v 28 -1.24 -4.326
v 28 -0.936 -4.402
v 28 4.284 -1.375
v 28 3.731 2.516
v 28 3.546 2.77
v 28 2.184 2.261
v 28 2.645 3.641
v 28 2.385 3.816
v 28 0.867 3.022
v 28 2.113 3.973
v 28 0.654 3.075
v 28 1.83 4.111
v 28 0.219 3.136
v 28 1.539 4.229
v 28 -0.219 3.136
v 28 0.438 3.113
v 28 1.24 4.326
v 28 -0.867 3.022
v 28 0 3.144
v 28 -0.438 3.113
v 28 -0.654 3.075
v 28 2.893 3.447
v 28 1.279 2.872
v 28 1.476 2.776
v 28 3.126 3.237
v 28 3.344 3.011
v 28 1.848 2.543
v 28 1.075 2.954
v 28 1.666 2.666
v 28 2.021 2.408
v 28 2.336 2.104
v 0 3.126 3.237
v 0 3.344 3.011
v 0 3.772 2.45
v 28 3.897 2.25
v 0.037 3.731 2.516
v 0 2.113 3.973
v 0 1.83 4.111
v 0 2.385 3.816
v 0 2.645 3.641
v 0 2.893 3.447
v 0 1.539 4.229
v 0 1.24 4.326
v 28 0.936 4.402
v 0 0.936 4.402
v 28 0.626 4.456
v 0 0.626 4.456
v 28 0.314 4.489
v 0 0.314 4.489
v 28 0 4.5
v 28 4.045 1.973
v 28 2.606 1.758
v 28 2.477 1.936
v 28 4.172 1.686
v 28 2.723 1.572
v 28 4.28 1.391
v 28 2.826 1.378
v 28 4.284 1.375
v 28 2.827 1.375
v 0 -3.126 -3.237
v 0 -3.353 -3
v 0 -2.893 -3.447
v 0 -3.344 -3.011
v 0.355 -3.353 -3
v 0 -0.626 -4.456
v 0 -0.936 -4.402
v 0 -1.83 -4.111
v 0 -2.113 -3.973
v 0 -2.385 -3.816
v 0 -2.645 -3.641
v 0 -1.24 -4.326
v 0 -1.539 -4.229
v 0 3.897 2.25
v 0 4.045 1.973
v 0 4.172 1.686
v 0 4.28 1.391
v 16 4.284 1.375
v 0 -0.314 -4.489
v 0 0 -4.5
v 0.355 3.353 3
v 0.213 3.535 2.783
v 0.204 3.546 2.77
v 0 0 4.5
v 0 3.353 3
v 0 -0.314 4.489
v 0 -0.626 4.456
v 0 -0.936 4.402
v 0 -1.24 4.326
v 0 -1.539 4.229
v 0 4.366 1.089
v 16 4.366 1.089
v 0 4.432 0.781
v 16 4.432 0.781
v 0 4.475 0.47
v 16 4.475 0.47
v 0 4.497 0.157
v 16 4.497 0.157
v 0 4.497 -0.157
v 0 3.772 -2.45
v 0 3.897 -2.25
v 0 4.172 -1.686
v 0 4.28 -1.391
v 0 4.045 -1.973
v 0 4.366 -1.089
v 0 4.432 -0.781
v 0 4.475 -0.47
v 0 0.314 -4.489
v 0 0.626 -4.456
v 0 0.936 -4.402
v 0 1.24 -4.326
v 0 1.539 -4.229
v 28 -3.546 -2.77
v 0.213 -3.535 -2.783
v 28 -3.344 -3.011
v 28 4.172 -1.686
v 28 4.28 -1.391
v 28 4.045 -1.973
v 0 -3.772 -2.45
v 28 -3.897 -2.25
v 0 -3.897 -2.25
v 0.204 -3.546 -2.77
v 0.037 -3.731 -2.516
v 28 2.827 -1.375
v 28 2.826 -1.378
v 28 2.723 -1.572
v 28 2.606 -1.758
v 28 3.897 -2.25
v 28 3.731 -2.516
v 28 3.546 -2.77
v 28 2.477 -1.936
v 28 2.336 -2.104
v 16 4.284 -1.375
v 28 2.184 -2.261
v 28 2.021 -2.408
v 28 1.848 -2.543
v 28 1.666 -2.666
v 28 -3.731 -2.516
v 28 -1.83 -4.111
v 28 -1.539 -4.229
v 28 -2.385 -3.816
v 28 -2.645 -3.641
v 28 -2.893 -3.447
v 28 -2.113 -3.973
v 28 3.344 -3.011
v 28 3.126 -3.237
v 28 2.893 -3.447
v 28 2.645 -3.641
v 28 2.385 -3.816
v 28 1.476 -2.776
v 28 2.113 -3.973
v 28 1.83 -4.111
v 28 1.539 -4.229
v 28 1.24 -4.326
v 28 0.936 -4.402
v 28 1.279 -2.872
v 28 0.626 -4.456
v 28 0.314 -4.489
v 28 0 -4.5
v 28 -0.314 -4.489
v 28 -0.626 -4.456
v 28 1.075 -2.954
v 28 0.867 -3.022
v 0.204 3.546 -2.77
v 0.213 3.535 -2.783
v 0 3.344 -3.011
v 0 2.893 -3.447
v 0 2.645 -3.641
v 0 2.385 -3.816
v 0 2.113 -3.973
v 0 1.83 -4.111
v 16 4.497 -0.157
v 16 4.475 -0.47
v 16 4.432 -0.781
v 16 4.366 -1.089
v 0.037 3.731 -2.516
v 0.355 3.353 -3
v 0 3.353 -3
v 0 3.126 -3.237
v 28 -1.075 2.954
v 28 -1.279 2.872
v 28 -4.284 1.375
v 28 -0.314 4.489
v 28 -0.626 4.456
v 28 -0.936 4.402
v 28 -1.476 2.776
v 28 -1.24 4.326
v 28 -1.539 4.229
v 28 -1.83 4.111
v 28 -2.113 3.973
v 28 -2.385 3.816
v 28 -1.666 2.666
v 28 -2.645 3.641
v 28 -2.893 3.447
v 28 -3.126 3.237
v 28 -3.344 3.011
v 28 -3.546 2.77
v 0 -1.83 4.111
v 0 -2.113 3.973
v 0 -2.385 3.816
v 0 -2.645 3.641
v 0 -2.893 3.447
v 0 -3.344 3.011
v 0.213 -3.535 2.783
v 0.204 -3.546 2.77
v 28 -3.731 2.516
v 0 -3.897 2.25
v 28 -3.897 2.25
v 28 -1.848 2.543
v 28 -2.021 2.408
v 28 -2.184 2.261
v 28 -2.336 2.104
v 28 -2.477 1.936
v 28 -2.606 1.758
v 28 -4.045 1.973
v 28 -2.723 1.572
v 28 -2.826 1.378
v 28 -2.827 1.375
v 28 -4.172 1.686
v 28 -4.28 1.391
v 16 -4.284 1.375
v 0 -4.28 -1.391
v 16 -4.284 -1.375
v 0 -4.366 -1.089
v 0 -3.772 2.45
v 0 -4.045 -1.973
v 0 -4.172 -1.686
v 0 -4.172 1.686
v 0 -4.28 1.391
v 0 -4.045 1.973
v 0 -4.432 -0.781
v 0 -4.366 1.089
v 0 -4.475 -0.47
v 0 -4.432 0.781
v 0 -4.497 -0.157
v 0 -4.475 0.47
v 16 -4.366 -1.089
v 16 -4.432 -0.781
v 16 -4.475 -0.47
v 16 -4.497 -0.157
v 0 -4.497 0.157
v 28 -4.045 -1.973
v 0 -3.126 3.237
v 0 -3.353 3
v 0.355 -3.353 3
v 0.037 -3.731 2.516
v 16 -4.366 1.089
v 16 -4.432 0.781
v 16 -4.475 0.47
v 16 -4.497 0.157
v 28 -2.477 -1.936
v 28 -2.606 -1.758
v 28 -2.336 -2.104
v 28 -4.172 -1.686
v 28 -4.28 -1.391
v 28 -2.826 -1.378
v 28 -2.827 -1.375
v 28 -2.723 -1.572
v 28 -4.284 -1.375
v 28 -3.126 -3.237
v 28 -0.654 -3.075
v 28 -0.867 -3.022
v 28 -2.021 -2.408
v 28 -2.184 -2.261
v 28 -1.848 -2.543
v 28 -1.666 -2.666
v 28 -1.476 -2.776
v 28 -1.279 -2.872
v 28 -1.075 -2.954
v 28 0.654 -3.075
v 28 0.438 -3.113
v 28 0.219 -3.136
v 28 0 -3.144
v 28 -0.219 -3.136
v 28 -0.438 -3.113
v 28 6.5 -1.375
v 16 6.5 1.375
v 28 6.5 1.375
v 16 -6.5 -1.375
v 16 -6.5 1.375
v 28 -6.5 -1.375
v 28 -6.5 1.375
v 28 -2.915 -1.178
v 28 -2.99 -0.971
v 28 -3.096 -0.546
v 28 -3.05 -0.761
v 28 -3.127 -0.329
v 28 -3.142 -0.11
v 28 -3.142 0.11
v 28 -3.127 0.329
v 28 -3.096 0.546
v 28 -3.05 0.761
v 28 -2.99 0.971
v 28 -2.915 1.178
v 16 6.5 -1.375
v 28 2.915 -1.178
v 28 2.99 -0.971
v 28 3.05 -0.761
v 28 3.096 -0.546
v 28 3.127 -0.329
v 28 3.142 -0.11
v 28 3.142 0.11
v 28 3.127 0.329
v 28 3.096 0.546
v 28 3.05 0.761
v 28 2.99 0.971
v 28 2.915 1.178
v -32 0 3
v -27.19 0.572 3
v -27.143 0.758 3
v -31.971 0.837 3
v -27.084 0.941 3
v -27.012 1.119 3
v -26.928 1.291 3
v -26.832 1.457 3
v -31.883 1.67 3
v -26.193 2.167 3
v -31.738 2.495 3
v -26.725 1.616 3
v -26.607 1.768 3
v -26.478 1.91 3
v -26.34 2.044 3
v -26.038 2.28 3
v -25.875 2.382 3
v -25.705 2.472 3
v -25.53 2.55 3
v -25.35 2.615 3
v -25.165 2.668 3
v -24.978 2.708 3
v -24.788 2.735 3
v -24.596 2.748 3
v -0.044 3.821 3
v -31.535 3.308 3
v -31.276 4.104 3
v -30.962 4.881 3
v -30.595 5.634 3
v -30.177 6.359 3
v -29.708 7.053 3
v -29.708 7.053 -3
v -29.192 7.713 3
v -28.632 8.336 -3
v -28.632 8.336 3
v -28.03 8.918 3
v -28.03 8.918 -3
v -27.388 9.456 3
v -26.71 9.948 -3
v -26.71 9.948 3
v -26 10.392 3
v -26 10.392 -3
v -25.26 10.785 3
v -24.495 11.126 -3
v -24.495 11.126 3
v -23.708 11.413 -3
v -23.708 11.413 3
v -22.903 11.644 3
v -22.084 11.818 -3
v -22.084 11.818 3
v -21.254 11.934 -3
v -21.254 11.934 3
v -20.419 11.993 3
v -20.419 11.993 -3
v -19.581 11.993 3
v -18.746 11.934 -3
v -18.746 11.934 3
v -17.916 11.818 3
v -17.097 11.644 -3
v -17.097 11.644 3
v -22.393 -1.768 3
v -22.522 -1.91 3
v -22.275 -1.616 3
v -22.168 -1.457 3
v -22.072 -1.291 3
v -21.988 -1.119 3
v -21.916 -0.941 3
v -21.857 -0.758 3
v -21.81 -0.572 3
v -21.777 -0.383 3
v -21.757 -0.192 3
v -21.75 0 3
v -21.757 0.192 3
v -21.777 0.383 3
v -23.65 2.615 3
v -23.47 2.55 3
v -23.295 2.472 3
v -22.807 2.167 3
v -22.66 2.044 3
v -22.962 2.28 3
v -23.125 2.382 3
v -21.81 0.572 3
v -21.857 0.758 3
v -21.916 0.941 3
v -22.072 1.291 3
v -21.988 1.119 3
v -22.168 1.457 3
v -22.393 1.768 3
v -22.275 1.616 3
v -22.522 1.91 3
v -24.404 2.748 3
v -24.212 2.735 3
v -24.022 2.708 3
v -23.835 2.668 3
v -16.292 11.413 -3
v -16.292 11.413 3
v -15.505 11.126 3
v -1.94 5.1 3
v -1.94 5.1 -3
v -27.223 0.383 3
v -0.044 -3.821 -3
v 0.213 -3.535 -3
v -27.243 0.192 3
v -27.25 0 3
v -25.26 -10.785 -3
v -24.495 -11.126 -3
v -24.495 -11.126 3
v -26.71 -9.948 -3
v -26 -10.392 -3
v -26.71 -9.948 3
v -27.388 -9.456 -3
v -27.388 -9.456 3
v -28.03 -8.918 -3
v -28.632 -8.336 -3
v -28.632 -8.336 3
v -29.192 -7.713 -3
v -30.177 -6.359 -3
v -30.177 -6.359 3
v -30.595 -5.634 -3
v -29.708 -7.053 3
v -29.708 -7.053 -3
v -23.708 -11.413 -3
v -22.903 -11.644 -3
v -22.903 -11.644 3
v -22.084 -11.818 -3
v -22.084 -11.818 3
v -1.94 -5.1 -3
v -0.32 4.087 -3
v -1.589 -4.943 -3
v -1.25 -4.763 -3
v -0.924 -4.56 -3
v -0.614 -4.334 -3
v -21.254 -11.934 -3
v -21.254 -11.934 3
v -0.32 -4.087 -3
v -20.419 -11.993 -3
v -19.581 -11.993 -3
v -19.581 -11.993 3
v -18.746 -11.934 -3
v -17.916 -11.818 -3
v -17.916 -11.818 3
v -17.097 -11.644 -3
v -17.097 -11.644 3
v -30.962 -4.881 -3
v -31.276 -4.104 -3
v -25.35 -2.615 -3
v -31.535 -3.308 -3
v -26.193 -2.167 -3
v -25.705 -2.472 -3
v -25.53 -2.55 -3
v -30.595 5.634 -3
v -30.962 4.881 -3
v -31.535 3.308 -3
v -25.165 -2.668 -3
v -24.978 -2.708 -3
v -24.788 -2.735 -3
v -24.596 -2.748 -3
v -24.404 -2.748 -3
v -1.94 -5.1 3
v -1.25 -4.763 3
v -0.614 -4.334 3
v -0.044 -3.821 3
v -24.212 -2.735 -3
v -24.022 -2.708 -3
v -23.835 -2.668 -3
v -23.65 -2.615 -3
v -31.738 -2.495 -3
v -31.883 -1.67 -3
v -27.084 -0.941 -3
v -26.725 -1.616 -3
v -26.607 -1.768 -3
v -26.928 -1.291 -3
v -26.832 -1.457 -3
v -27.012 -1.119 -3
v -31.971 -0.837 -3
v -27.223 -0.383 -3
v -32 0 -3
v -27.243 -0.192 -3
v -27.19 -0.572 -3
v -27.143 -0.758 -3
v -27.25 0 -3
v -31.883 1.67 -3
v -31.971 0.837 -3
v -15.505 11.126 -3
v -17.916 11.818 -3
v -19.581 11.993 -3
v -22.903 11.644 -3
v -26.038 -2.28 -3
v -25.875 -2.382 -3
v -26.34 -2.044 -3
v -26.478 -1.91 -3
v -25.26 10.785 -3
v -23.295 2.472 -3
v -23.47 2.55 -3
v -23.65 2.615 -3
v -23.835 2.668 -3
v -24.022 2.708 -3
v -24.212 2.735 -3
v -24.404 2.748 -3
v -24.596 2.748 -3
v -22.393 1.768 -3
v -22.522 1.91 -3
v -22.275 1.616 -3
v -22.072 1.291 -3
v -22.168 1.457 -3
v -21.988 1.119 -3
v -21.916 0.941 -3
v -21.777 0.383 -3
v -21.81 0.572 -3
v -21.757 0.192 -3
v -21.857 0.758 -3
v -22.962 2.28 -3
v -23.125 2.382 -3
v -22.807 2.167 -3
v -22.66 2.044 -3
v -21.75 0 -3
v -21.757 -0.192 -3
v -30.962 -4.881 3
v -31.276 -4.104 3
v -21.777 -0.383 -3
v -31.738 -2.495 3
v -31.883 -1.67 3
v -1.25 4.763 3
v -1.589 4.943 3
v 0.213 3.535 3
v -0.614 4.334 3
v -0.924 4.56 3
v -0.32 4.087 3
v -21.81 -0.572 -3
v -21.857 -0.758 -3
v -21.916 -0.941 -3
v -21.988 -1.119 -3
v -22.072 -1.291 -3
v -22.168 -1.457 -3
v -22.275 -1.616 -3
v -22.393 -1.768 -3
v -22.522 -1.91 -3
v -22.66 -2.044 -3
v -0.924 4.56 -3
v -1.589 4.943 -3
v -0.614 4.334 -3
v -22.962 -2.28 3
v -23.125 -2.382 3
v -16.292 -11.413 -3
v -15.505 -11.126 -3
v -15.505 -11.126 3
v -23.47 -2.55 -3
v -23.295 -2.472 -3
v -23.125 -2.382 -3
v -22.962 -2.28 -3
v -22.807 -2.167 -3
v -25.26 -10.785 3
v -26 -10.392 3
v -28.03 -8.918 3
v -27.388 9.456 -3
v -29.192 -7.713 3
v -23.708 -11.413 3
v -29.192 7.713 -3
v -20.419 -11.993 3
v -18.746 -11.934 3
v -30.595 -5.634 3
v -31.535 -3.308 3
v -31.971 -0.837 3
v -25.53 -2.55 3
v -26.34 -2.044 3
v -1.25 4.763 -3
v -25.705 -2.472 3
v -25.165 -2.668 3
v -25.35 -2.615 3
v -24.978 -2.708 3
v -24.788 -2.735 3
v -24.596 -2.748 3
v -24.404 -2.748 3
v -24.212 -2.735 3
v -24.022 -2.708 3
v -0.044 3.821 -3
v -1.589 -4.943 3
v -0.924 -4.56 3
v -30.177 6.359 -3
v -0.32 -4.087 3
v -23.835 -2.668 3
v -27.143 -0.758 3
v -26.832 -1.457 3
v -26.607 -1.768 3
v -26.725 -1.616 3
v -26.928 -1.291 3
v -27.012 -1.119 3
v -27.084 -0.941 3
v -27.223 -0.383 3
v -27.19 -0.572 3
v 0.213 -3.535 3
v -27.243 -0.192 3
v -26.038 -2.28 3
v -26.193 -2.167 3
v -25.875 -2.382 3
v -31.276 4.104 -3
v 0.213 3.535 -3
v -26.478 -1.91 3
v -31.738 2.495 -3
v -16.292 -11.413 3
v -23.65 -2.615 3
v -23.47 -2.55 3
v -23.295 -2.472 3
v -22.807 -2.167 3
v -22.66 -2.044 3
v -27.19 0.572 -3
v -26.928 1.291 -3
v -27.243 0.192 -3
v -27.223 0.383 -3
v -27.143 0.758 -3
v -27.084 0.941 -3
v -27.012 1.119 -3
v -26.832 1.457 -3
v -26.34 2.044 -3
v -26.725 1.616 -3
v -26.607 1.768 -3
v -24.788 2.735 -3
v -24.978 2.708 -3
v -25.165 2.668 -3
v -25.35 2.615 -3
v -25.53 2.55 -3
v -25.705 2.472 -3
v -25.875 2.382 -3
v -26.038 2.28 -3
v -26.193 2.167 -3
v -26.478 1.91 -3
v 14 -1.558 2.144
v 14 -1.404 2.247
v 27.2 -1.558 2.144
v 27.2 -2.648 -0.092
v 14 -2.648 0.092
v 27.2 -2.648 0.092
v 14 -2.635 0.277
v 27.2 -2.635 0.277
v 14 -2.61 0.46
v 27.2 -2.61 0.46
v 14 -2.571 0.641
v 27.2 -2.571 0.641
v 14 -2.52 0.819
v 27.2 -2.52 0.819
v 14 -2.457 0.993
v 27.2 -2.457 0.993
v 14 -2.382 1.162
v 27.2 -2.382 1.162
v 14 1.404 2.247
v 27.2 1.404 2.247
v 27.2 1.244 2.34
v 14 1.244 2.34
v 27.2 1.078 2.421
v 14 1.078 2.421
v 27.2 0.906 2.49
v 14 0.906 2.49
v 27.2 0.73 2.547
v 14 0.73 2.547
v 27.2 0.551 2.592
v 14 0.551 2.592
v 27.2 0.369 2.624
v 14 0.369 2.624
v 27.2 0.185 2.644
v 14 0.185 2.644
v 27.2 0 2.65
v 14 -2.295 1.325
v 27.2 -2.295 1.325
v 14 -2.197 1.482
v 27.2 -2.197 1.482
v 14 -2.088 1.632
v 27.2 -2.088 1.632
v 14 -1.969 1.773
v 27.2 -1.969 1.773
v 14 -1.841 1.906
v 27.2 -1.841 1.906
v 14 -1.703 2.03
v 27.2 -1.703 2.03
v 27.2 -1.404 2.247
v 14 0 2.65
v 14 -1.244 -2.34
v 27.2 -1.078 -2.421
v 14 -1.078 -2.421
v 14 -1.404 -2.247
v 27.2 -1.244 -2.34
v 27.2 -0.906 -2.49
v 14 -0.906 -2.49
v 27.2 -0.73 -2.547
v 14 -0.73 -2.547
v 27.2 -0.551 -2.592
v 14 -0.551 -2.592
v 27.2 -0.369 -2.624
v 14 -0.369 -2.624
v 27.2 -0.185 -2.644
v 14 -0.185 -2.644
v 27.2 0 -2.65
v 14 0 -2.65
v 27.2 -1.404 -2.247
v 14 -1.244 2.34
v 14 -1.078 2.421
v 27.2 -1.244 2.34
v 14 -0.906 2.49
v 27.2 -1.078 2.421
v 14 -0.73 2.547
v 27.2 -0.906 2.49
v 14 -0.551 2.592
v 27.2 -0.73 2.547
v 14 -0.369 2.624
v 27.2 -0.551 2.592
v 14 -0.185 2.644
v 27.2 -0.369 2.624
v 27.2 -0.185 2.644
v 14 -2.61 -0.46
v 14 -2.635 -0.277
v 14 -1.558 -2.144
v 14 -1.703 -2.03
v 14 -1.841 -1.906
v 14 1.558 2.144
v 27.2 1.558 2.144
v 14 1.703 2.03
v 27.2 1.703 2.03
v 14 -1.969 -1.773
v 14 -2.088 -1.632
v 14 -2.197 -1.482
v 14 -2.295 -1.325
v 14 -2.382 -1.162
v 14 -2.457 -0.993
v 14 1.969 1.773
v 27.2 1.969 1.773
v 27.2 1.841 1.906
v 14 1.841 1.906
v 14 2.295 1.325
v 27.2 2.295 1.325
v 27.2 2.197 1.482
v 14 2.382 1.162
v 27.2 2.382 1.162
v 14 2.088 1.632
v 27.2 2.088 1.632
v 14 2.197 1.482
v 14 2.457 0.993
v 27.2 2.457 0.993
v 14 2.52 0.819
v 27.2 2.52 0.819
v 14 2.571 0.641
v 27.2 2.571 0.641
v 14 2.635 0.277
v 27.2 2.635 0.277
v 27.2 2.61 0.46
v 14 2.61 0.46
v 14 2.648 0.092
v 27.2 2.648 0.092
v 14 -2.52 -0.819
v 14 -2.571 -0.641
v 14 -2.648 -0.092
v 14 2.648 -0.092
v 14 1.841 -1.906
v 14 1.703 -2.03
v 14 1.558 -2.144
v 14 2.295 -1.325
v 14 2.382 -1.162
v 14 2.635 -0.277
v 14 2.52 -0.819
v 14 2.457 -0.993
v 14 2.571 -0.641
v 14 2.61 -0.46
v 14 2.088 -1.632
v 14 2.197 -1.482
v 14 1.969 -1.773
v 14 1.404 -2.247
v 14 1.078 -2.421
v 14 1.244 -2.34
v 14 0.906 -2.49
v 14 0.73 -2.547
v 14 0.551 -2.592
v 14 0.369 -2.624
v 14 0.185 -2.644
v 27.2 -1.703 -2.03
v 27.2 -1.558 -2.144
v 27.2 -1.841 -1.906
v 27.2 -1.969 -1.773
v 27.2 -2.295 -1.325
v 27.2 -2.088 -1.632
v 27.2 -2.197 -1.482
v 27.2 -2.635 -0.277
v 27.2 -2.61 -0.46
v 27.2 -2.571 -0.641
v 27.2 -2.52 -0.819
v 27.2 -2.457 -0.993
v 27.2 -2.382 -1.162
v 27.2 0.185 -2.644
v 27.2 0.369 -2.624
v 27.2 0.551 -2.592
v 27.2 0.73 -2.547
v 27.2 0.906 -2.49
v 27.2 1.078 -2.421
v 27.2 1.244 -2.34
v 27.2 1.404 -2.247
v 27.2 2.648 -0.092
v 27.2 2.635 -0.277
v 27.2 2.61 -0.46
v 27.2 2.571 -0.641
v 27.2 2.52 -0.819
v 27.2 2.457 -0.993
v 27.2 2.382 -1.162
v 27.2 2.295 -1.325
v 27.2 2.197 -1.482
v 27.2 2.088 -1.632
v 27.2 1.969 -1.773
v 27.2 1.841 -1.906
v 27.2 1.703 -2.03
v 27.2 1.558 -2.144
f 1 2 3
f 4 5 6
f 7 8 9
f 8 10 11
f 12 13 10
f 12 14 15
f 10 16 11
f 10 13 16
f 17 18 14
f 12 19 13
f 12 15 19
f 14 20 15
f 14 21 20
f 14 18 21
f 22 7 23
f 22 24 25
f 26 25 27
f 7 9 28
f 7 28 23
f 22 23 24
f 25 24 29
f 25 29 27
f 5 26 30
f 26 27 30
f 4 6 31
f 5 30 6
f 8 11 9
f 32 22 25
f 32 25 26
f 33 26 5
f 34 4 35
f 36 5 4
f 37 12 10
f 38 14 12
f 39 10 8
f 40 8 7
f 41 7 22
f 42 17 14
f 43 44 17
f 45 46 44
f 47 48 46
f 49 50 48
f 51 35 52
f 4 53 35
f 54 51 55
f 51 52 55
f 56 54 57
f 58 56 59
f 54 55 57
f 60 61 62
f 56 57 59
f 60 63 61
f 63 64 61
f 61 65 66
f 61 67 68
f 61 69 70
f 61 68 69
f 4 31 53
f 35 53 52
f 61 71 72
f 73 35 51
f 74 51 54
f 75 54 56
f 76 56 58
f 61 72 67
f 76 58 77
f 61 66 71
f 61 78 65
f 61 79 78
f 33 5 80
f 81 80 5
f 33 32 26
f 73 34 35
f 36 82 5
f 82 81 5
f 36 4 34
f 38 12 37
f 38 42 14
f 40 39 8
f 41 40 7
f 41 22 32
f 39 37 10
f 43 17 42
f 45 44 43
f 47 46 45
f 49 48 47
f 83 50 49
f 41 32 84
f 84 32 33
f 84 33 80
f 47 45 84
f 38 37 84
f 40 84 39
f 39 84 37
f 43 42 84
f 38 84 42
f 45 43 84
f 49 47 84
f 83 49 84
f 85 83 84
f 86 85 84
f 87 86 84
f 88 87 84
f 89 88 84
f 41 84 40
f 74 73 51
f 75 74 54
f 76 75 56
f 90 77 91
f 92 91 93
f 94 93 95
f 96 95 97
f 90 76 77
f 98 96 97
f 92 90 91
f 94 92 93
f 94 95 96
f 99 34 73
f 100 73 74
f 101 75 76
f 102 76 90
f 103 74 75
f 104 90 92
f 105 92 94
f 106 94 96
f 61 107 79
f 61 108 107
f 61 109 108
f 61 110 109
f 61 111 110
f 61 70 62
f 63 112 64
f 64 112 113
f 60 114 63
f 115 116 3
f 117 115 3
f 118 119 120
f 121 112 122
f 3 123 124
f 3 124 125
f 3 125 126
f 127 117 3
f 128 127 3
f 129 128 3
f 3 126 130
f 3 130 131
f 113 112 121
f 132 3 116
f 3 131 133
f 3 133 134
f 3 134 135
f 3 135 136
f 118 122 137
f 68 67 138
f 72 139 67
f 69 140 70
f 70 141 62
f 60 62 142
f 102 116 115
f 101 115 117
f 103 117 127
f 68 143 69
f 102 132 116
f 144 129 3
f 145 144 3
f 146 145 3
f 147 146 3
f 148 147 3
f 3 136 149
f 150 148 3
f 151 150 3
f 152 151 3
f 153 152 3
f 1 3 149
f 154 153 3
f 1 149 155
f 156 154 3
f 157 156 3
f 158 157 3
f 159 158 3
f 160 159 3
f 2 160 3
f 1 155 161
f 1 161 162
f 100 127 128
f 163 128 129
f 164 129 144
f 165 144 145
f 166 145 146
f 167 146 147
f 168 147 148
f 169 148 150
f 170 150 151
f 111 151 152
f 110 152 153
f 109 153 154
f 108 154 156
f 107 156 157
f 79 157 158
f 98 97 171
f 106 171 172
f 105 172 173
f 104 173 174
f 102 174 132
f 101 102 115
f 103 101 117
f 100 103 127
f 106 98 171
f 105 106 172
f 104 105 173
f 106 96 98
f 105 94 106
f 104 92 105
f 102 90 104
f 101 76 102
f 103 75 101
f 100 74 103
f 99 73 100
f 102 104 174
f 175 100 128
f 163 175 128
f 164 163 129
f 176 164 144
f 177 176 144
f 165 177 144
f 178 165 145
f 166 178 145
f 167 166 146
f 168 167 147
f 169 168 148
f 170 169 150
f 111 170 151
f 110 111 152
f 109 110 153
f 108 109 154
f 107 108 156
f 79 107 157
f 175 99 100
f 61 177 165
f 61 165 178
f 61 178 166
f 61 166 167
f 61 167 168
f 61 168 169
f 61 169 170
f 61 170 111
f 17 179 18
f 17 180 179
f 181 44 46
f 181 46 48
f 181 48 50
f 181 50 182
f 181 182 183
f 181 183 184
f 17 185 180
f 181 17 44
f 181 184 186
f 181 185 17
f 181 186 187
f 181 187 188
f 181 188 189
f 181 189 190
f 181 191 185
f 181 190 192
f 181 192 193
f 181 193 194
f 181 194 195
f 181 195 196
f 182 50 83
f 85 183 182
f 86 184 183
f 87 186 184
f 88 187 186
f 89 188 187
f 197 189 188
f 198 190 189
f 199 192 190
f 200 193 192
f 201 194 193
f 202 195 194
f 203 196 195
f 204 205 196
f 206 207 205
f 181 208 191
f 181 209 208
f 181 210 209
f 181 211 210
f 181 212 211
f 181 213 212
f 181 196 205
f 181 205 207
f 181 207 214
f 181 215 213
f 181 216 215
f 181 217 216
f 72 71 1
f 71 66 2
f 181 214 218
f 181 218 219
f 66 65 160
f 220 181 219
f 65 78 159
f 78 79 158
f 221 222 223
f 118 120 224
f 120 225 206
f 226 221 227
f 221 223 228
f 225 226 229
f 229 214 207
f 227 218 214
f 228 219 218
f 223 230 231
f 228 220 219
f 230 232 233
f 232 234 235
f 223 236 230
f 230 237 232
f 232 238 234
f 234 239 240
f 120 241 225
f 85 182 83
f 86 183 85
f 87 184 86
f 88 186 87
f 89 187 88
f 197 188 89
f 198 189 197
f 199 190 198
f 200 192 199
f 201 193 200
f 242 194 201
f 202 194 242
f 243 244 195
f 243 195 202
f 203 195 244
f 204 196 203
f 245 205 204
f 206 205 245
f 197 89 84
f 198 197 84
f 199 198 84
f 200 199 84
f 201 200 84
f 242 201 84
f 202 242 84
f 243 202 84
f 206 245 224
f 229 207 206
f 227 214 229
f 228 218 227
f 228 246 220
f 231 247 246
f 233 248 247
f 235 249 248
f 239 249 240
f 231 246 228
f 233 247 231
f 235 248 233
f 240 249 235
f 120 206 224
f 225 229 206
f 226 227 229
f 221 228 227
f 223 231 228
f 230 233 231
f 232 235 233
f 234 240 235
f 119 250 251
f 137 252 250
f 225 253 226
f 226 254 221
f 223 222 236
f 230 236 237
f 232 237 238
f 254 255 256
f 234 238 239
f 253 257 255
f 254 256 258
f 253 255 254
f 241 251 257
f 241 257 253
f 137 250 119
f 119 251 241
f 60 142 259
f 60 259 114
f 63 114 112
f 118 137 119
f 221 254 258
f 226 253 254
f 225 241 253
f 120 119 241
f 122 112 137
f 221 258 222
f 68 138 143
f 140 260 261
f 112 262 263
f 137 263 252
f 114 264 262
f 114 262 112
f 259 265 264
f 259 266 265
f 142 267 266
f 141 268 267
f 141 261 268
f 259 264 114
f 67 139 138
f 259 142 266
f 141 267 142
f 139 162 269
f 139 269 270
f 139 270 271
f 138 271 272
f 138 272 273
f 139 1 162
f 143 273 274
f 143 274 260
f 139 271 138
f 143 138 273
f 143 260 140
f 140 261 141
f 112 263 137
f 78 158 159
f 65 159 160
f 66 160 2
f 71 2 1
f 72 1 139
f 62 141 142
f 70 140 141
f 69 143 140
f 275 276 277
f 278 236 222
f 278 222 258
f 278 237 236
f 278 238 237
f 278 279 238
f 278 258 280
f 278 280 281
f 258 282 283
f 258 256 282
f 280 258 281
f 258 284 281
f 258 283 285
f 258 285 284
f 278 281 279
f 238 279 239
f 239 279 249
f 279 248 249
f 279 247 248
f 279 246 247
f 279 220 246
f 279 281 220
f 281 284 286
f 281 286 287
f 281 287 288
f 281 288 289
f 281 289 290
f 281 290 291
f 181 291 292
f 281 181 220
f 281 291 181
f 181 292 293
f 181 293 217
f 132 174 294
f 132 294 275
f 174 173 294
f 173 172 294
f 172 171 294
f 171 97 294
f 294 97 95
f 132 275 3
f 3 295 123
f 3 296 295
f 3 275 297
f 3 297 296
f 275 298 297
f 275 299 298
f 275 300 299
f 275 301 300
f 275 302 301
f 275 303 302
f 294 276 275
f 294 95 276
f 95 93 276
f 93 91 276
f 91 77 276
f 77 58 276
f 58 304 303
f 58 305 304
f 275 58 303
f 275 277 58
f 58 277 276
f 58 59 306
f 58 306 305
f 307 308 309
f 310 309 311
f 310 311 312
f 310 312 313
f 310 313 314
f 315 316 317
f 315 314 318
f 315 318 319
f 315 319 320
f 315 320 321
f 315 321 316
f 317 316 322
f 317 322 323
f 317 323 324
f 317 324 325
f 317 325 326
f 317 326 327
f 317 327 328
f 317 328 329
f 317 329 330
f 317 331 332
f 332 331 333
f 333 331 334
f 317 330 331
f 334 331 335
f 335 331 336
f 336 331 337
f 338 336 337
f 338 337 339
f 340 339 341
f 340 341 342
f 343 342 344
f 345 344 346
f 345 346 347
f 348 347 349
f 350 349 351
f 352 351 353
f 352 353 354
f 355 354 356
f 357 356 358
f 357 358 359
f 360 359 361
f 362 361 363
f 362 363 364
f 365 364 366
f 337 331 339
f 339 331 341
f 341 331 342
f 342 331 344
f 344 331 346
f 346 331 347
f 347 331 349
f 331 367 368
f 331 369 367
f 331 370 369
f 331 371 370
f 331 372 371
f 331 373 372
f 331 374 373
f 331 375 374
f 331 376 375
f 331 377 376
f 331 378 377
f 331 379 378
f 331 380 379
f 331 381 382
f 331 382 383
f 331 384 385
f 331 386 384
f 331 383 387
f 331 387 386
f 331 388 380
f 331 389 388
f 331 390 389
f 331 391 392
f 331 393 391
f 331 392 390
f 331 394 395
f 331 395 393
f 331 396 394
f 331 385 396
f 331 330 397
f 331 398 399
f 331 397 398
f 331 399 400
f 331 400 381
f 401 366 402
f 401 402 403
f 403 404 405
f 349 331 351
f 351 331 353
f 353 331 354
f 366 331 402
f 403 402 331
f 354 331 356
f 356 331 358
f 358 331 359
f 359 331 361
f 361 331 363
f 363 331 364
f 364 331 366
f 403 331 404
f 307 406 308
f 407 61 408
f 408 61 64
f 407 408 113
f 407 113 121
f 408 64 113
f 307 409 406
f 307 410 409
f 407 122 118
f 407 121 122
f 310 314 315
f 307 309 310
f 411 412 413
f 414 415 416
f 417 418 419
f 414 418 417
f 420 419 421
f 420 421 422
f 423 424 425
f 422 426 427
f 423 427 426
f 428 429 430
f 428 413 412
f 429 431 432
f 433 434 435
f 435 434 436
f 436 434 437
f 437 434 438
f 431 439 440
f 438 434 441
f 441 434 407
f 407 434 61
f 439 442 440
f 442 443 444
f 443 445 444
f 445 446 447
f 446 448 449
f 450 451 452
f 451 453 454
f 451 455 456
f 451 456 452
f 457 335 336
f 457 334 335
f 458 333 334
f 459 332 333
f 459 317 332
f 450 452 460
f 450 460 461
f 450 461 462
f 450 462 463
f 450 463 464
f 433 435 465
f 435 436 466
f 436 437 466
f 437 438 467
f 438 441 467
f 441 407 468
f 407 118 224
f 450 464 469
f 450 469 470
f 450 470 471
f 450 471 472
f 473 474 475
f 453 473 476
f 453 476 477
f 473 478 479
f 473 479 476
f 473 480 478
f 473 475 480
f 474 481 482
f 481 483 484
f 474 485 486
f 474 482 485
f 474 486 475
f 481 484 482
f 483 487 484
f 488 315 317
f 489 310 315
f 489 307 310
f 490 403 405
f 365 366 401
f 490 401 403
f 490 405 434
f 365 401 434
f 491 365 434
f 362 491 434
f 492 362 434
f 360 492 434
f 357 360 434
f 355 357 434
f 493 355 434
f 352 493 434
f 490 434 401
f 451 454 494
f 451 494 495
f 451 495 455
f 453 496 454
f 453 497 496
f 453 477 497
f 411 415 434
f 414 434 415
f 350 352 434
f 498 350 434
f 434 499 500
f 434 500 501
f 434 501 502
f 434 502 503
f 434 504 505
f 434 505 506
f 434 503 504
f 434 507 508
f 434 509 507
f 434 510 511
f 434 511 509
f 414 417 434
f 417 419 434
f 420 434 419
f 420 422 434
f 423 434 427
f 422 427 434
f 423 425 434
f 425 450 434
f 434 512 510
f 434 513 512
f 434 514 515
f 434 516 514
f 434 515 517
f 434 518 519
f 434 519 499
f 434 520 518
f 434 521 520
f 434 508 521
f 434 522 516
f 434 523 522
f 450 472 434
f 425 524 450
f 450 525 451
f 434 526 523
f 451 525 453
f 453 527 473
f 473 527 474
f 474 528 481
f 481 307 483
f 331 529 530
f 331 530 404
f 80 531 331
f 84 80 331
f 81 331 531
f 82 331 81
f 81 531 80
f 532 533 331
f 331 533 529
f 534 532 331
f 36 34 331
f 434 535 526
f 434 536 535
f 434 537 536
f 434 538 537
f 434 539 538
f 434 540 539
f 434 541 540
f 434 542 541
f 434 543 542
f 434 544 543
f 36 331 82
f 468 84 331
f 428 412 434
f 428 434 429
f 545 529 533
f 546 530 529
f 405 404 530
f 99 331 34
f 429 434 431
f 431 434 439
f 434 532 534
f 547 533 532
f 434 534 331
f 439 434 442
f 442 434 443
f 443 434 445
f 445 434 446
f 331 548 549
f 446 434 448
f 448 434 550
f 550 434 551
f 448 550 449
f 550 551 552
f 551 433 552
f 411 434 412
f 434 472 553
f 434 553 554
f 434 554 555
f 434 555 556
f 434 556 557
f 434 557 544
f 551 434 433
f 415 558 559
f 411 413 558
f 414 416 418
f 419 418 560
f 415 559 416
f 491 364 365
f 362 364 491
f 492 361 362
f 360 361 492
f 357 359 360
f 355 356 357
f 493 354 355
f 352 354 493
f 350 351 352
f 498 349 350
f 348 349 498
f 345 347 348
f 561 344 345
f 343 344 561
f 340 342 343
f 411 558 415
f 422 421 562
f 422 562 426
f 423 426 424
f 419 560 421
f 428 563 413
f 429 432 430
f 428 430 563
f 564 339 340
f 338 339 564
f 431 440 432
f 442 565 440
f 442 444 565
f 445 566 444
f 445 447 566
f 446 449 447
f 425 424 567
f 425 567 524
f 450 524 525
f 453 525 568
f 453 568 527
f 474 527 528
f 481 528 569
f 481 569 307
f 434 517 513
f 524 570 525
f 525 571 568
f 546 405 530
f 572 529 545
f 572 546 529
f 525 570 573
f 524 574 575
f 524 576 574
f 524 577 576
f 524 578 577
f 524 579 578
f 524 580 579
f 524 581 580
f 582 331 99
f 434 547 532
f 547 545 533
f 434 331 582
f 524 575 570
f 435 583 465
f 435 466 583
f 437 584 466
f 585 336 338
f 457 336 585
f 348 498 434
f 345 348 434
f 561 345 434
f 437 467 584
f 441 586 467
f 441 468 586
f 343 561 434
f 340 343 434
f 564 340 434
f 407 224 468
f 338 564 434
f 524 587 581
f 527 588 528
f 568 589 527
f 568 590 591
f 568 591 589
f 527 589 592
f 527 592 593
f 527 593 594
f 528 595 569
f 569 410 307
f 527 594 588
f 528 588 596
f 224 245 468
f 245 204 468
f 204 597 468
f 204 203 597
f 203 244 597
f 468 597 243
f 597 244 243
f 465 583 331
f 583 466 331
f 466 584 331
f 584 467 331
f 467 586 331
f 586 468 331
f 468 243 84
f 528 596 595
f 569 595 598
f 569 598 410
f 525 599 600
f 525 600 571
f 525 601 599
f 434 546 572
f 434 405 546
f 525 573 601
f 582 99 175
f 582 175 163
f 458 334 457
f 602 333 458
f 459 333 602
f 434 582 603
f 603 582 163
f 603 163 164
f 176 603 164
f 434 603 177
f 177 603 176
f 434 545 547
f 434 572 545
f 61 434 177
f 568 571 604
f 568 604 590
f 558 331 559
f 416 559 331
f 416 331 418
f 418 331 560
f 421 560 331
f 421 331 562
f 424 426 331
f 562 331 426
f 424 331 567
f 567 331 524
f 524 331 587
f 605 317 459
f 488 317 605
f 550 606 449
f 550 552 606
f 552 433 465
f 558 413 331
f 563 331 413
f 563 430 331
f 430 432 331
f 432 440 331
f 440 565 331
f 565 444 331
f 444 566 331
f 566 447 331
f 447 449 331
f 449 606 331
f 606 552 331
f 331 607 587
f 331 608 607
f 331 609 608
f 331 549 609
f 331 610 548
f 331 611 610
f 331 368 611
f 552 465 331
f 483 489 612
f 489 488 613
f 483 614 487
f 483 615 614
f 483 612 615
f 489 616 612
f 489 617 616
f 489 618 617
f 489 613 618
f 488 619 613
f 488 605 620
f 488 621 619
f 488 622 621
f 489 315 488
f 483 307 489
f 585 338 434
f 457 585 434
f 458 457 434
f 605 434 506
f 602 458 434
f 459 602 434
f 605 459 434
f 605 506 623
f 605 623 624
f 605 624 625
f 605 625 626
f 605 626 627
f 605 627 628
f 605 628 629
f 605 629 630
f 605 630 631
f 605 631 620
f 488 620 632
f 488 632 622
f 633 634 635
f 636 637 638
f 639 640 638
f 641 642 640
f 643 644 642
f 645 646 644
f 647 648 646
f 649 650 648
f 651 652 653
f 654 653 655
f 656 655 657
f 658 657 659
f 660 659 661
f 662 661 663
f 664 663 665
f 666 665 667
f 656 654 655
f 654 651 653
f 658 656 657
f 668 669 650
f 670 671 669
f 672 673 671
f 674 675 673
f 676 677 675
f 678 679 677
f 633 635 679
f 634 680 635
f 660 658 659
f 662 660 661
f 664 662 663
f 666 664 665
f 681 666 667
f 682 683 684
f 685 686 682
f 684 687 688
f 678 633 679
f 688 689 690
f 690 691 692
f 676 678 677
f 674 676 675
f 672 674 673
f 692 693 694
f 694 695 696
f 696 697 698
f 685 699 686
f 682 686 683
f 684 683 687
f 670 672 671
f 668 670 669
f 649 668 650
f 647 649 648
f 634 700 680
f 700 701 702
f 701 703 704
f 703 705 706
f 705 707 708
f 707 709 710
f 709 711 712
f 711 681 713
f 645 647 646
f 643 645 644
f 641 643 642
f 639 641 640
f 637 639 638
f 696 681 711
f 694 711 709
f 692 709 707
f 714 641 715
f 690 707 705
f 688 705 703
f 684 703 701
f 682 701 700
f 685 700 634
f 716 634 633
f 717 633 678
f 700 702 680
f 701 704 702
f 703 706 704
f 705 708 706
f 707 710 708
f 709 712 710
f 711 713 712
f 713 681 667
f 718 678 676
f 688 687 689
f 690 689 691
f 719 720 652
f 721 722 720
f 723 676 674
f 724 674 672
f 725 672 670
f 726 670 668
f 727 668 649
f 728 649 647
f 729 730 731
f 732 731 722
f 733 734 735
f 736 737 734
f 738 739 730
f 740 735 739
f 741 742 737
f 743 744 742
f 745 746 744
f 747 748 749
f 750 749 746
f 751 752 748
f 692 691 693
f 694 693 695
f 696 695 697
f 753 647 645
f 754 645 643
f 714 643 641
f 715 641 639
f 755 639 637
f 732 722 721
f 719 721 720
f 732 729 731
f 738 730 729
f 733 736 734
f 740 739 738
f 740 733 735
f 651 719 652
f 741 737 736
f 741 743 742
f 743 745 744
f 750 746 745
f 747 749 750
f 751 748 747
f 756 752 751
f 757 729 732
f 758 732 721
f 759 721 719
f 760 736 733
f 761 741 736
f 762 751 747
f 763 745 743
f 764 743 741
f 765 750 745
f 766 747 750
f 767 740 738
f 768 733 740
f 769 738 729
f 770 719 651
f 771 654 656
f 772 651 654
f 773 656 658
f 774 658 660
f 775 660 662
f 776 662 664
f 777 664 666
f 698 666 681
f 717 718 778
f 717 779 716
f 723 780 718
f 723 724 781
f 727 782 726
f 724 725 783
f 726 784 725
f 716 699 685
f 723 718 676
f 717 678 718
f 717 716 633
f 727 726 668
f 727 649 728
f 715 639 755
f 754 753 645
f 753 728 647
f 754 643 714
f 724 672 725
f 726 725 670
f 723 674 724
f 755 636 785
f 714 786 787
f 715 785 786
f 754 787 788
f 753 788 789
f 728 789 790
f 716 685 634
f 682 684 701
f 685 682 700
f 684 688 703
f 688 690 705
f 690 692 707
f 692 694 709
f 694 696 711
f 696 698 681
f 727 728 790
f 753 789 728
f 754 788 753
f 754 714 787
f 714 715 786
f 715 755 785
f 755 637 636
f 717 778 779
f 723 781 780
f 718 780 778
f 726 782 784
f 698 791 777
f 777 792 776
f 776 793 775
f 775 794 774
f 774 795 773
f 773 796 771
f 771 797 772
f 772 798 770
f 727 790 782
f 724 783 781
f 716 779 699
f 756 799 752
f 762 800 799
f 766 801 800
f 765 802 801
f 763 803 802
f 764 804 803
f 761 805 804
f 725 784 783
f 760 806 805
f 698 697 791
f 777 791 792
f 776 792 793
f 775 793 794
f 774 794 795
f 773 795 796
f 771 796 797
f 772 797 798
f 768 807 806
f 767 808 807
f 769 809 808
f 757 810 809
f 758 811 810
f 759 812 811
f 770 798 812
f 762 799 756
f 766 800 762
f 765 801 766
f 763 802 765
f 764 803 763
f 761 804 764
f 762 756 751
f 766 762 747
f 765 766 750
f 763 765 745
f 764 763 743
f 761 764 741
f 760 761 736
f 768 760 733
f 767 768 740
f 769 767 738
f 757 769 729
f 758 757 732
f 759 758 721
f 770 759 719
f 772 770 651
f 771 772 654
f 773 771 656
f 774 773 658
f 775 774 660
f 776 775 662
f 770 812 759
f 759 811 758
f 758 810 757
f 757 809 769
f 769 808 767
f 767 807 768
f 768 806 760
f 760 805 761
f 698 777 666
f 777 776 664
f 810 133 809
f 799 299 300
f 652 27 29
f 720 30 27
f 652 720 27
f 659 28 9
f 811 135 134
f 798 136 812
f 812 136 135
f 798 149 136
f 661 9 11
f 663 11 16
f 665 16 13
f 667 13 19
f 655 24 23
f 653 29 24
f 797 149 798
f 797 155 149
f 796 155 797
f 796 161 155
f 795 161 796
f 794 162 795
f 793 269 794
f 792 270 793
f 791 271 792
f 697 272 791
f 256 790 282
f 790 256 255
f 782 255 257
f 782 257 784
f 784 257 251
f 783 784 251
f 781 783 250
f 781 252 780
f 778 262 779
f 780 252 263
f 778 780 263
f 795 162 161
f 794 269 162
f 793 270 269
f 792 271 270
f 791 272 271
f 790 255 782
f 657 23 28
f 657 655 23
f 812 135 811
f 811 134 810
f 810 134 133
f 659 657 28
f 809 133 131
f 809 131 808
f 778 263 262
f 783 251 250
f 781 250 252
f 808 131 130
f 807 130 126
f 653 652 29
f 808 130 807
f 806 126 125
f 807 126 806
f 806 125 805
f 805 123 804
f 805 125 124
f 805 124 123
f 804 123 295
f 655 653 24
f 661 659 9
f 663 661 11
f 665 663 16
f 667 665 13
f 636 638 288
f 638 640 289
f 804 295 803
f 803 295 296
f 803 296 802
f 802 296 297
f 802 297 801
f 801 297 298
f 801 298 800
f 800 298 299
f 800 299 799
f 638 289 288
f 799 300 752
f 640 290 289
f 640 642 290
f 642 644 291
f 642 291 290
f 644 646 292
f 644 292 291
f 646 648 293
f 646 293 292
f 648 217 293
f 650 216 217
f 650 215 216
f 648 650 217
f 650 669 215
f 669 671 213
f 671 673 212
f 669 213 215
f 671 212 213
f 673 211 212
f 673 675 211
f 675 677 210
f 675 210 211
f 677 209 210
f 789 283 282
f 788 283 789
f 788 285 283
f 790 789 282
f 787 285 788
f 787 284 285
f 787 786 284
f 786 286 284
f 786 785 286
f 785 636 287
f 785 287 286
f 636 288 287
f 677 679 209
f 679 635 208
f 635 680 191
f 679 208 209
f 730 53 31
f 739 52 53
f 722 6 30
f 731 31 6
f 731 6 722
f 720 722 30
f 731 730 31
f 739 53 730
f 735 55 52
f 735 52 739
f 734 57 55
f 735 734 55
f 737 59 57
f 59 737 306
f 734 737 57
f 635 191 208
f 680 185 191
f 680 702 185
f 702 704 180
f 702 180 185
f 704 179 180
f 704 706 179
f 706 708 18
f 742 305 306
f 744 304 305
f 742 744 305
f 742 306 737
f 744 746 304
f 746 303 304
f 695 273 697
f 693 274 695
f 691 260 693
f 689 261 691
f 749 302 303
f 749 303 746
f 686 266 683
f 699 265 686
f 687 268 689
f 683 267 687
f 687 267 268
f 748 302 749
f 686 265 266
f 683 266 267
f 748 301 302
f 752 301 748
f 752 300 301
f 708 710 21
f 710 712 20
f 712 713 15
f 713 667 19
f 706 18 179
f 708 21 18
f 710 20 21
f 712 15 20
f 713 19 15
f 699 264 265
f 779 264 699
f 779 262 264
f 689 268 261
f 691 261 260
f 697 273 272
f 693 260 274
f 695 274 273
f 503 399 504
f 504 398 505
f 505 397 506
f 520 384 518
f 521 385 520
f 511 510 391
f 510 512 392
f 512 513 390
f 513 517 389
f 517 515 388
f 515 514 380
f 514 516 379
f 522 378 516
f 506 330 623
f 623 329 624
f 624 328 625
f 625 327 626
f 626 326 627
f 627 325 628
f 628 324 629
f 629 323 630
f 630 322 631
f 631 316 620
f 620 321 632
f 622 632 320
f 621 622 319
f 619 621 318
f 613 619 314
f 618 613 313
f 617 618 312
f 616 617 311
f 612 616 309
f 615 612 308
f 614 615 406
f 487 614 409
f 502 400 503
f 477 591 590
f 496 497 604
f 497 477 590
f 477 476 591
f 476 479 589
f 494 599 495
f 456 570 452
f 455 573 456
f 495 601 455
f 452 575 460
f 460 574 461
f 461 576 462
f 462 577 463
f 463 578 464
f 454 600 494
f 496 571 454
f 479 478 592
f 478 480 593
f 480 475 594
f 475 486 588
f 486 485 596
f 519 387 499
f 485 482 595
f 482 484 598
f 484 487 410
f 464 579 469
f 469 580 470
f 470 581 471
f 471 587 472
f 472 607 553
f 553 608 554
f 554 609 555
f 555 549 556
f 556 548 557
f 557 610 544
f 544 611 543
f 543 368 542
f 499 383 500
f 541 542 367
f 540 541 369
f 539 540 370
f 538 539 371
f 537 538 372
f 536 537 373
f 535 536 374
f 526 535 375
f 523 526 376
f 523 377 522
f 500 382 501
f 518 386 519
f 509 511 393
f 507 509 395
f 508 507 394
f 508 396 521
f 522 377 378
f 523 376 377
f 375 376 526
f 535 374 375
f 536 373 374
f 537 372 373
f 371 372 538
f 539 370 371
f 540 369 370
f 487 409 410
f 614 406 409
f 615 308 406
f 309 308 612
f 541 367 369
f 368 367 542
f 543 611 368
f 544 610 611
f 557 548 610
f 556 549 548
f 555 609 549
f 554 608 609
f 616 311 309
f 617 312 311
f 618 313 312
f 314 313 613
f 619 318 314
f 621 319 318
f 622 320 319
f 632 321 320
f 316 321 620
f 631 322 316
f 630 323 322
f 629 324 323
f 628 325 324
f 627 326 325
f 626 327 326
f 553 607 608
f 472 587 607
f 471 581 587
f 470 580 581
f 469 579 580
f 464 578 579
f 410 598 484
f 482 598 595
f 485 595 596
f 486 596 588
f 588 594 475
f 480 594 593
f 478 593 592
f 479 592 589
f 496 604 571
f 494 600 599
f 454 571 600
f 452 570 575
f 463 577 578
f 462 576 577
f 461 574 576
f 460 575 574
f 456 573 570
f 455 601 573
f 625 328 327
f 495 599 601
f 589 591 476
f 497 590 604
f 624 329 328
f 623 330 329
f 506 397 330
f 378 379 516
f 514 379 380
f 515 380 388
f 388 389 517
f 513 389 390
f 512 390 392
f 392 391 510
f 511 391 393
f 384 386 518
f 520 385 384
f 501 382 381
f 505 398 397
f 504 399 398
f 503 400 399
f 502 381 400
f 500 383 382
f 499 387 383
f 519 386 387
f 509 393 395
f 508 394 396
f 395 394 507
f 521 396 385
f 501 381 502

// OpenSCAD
// ============================================================================
// UNIVERSAL ROBOTS CONTROL BOX CABINET KEY (RITTAL DOUBLE-BIT 3 MM / 5 MM)
// Fits UR CB-Series & e-Series Control Boxes (Units: mm)
// Print flat on build plate in PETG / PA-CF / ASA with 100% infill
// ============================================================================

$fn = 90;

// --- Select Key Variant ("3mm" is standard for UR Rittal control boxes; "5mm" for larger cabinets) ---
key_variant     = "3mm"; // ["3mm", "5mm"]

// --- Barrel & Bit Dimensions ---
barrel_od       = 9.0;    // Outer cylinder diameter (fits Ø 10 mm lock bore)
center_pin_id   = 5.3;    // Inner bore to clear the center guide pin inside the lock
shaft_length    = 28.0;   // Total shaft reach into cabinet door
bit_length      = 12.0;   // Length of the double-bit wings
wing_span       = 13.0;   // Tip-to-tip width across both wings (2.0 mm protrusion per side)
wing_thick      = (key_variant == "3mm") ? 2.75 : 4.75; // Blade thickness with 0.25 mm print clearance

// --- Ergonomic Handle Bow ---
handle_len      = 32.0;
handle_width    = 24.0;
handle_thick    = 6.0;
keyring_hole_d  = 5.5;

module ur_control_box_key() {
    difference() {
        union() {
            // 1. Cylindrical Key Shaft
            rotate([0, 90, 0])
                cylinder(d = barrel_od, h = shaft_length);

            // 2. Double-Bit Wings at Tip of Shaft
            translate([shaft_length - bit_length, -wing_span / 2, -wing_thick / 2])
                cube([bit_length, wing_span, wing_thick]);

            // 3. Ergonomic Handle Bow (Rounded T-handle for high torque)
            hull() {
                translate([-handle_len + handle_width / 2, 0, -handle_thick / 2])
                    cylinder(d = handle_width, h = handle_thick);
                translate([-4.0, 0, -handle_thick / 2])
                    cylinder(d = barrel_od + 2.0, h = handle_thick);
            }
        }

        // --- SUBTRACTIVE CUTS ---

        // A. Center Guide Pin Bore inside Barrel Tip
        translate([shaft_length - 14.0, 0, 0])
            rotate([0, 90, 0])
                cylinder(d = center_pin_id, h = 15.0);

        // B. Lead-In Chamfer on Center Pin Bore
        translate([shaft_length - 0.8, 0, 0])
            rotate([0, 90, 0])
                cylinder(d1 = center_pin_id, d2 = center_pin_id + 1.0, h = 0.81);

        // C. Keyring Eyelet in Handle
        translate([-handle_len + 7.5, 0, -handle_thick / 2 - 1])
            cylinder(d = keyring_hole_d, h = handle_thick + 2);
    }
}

ur_control_box_key();
